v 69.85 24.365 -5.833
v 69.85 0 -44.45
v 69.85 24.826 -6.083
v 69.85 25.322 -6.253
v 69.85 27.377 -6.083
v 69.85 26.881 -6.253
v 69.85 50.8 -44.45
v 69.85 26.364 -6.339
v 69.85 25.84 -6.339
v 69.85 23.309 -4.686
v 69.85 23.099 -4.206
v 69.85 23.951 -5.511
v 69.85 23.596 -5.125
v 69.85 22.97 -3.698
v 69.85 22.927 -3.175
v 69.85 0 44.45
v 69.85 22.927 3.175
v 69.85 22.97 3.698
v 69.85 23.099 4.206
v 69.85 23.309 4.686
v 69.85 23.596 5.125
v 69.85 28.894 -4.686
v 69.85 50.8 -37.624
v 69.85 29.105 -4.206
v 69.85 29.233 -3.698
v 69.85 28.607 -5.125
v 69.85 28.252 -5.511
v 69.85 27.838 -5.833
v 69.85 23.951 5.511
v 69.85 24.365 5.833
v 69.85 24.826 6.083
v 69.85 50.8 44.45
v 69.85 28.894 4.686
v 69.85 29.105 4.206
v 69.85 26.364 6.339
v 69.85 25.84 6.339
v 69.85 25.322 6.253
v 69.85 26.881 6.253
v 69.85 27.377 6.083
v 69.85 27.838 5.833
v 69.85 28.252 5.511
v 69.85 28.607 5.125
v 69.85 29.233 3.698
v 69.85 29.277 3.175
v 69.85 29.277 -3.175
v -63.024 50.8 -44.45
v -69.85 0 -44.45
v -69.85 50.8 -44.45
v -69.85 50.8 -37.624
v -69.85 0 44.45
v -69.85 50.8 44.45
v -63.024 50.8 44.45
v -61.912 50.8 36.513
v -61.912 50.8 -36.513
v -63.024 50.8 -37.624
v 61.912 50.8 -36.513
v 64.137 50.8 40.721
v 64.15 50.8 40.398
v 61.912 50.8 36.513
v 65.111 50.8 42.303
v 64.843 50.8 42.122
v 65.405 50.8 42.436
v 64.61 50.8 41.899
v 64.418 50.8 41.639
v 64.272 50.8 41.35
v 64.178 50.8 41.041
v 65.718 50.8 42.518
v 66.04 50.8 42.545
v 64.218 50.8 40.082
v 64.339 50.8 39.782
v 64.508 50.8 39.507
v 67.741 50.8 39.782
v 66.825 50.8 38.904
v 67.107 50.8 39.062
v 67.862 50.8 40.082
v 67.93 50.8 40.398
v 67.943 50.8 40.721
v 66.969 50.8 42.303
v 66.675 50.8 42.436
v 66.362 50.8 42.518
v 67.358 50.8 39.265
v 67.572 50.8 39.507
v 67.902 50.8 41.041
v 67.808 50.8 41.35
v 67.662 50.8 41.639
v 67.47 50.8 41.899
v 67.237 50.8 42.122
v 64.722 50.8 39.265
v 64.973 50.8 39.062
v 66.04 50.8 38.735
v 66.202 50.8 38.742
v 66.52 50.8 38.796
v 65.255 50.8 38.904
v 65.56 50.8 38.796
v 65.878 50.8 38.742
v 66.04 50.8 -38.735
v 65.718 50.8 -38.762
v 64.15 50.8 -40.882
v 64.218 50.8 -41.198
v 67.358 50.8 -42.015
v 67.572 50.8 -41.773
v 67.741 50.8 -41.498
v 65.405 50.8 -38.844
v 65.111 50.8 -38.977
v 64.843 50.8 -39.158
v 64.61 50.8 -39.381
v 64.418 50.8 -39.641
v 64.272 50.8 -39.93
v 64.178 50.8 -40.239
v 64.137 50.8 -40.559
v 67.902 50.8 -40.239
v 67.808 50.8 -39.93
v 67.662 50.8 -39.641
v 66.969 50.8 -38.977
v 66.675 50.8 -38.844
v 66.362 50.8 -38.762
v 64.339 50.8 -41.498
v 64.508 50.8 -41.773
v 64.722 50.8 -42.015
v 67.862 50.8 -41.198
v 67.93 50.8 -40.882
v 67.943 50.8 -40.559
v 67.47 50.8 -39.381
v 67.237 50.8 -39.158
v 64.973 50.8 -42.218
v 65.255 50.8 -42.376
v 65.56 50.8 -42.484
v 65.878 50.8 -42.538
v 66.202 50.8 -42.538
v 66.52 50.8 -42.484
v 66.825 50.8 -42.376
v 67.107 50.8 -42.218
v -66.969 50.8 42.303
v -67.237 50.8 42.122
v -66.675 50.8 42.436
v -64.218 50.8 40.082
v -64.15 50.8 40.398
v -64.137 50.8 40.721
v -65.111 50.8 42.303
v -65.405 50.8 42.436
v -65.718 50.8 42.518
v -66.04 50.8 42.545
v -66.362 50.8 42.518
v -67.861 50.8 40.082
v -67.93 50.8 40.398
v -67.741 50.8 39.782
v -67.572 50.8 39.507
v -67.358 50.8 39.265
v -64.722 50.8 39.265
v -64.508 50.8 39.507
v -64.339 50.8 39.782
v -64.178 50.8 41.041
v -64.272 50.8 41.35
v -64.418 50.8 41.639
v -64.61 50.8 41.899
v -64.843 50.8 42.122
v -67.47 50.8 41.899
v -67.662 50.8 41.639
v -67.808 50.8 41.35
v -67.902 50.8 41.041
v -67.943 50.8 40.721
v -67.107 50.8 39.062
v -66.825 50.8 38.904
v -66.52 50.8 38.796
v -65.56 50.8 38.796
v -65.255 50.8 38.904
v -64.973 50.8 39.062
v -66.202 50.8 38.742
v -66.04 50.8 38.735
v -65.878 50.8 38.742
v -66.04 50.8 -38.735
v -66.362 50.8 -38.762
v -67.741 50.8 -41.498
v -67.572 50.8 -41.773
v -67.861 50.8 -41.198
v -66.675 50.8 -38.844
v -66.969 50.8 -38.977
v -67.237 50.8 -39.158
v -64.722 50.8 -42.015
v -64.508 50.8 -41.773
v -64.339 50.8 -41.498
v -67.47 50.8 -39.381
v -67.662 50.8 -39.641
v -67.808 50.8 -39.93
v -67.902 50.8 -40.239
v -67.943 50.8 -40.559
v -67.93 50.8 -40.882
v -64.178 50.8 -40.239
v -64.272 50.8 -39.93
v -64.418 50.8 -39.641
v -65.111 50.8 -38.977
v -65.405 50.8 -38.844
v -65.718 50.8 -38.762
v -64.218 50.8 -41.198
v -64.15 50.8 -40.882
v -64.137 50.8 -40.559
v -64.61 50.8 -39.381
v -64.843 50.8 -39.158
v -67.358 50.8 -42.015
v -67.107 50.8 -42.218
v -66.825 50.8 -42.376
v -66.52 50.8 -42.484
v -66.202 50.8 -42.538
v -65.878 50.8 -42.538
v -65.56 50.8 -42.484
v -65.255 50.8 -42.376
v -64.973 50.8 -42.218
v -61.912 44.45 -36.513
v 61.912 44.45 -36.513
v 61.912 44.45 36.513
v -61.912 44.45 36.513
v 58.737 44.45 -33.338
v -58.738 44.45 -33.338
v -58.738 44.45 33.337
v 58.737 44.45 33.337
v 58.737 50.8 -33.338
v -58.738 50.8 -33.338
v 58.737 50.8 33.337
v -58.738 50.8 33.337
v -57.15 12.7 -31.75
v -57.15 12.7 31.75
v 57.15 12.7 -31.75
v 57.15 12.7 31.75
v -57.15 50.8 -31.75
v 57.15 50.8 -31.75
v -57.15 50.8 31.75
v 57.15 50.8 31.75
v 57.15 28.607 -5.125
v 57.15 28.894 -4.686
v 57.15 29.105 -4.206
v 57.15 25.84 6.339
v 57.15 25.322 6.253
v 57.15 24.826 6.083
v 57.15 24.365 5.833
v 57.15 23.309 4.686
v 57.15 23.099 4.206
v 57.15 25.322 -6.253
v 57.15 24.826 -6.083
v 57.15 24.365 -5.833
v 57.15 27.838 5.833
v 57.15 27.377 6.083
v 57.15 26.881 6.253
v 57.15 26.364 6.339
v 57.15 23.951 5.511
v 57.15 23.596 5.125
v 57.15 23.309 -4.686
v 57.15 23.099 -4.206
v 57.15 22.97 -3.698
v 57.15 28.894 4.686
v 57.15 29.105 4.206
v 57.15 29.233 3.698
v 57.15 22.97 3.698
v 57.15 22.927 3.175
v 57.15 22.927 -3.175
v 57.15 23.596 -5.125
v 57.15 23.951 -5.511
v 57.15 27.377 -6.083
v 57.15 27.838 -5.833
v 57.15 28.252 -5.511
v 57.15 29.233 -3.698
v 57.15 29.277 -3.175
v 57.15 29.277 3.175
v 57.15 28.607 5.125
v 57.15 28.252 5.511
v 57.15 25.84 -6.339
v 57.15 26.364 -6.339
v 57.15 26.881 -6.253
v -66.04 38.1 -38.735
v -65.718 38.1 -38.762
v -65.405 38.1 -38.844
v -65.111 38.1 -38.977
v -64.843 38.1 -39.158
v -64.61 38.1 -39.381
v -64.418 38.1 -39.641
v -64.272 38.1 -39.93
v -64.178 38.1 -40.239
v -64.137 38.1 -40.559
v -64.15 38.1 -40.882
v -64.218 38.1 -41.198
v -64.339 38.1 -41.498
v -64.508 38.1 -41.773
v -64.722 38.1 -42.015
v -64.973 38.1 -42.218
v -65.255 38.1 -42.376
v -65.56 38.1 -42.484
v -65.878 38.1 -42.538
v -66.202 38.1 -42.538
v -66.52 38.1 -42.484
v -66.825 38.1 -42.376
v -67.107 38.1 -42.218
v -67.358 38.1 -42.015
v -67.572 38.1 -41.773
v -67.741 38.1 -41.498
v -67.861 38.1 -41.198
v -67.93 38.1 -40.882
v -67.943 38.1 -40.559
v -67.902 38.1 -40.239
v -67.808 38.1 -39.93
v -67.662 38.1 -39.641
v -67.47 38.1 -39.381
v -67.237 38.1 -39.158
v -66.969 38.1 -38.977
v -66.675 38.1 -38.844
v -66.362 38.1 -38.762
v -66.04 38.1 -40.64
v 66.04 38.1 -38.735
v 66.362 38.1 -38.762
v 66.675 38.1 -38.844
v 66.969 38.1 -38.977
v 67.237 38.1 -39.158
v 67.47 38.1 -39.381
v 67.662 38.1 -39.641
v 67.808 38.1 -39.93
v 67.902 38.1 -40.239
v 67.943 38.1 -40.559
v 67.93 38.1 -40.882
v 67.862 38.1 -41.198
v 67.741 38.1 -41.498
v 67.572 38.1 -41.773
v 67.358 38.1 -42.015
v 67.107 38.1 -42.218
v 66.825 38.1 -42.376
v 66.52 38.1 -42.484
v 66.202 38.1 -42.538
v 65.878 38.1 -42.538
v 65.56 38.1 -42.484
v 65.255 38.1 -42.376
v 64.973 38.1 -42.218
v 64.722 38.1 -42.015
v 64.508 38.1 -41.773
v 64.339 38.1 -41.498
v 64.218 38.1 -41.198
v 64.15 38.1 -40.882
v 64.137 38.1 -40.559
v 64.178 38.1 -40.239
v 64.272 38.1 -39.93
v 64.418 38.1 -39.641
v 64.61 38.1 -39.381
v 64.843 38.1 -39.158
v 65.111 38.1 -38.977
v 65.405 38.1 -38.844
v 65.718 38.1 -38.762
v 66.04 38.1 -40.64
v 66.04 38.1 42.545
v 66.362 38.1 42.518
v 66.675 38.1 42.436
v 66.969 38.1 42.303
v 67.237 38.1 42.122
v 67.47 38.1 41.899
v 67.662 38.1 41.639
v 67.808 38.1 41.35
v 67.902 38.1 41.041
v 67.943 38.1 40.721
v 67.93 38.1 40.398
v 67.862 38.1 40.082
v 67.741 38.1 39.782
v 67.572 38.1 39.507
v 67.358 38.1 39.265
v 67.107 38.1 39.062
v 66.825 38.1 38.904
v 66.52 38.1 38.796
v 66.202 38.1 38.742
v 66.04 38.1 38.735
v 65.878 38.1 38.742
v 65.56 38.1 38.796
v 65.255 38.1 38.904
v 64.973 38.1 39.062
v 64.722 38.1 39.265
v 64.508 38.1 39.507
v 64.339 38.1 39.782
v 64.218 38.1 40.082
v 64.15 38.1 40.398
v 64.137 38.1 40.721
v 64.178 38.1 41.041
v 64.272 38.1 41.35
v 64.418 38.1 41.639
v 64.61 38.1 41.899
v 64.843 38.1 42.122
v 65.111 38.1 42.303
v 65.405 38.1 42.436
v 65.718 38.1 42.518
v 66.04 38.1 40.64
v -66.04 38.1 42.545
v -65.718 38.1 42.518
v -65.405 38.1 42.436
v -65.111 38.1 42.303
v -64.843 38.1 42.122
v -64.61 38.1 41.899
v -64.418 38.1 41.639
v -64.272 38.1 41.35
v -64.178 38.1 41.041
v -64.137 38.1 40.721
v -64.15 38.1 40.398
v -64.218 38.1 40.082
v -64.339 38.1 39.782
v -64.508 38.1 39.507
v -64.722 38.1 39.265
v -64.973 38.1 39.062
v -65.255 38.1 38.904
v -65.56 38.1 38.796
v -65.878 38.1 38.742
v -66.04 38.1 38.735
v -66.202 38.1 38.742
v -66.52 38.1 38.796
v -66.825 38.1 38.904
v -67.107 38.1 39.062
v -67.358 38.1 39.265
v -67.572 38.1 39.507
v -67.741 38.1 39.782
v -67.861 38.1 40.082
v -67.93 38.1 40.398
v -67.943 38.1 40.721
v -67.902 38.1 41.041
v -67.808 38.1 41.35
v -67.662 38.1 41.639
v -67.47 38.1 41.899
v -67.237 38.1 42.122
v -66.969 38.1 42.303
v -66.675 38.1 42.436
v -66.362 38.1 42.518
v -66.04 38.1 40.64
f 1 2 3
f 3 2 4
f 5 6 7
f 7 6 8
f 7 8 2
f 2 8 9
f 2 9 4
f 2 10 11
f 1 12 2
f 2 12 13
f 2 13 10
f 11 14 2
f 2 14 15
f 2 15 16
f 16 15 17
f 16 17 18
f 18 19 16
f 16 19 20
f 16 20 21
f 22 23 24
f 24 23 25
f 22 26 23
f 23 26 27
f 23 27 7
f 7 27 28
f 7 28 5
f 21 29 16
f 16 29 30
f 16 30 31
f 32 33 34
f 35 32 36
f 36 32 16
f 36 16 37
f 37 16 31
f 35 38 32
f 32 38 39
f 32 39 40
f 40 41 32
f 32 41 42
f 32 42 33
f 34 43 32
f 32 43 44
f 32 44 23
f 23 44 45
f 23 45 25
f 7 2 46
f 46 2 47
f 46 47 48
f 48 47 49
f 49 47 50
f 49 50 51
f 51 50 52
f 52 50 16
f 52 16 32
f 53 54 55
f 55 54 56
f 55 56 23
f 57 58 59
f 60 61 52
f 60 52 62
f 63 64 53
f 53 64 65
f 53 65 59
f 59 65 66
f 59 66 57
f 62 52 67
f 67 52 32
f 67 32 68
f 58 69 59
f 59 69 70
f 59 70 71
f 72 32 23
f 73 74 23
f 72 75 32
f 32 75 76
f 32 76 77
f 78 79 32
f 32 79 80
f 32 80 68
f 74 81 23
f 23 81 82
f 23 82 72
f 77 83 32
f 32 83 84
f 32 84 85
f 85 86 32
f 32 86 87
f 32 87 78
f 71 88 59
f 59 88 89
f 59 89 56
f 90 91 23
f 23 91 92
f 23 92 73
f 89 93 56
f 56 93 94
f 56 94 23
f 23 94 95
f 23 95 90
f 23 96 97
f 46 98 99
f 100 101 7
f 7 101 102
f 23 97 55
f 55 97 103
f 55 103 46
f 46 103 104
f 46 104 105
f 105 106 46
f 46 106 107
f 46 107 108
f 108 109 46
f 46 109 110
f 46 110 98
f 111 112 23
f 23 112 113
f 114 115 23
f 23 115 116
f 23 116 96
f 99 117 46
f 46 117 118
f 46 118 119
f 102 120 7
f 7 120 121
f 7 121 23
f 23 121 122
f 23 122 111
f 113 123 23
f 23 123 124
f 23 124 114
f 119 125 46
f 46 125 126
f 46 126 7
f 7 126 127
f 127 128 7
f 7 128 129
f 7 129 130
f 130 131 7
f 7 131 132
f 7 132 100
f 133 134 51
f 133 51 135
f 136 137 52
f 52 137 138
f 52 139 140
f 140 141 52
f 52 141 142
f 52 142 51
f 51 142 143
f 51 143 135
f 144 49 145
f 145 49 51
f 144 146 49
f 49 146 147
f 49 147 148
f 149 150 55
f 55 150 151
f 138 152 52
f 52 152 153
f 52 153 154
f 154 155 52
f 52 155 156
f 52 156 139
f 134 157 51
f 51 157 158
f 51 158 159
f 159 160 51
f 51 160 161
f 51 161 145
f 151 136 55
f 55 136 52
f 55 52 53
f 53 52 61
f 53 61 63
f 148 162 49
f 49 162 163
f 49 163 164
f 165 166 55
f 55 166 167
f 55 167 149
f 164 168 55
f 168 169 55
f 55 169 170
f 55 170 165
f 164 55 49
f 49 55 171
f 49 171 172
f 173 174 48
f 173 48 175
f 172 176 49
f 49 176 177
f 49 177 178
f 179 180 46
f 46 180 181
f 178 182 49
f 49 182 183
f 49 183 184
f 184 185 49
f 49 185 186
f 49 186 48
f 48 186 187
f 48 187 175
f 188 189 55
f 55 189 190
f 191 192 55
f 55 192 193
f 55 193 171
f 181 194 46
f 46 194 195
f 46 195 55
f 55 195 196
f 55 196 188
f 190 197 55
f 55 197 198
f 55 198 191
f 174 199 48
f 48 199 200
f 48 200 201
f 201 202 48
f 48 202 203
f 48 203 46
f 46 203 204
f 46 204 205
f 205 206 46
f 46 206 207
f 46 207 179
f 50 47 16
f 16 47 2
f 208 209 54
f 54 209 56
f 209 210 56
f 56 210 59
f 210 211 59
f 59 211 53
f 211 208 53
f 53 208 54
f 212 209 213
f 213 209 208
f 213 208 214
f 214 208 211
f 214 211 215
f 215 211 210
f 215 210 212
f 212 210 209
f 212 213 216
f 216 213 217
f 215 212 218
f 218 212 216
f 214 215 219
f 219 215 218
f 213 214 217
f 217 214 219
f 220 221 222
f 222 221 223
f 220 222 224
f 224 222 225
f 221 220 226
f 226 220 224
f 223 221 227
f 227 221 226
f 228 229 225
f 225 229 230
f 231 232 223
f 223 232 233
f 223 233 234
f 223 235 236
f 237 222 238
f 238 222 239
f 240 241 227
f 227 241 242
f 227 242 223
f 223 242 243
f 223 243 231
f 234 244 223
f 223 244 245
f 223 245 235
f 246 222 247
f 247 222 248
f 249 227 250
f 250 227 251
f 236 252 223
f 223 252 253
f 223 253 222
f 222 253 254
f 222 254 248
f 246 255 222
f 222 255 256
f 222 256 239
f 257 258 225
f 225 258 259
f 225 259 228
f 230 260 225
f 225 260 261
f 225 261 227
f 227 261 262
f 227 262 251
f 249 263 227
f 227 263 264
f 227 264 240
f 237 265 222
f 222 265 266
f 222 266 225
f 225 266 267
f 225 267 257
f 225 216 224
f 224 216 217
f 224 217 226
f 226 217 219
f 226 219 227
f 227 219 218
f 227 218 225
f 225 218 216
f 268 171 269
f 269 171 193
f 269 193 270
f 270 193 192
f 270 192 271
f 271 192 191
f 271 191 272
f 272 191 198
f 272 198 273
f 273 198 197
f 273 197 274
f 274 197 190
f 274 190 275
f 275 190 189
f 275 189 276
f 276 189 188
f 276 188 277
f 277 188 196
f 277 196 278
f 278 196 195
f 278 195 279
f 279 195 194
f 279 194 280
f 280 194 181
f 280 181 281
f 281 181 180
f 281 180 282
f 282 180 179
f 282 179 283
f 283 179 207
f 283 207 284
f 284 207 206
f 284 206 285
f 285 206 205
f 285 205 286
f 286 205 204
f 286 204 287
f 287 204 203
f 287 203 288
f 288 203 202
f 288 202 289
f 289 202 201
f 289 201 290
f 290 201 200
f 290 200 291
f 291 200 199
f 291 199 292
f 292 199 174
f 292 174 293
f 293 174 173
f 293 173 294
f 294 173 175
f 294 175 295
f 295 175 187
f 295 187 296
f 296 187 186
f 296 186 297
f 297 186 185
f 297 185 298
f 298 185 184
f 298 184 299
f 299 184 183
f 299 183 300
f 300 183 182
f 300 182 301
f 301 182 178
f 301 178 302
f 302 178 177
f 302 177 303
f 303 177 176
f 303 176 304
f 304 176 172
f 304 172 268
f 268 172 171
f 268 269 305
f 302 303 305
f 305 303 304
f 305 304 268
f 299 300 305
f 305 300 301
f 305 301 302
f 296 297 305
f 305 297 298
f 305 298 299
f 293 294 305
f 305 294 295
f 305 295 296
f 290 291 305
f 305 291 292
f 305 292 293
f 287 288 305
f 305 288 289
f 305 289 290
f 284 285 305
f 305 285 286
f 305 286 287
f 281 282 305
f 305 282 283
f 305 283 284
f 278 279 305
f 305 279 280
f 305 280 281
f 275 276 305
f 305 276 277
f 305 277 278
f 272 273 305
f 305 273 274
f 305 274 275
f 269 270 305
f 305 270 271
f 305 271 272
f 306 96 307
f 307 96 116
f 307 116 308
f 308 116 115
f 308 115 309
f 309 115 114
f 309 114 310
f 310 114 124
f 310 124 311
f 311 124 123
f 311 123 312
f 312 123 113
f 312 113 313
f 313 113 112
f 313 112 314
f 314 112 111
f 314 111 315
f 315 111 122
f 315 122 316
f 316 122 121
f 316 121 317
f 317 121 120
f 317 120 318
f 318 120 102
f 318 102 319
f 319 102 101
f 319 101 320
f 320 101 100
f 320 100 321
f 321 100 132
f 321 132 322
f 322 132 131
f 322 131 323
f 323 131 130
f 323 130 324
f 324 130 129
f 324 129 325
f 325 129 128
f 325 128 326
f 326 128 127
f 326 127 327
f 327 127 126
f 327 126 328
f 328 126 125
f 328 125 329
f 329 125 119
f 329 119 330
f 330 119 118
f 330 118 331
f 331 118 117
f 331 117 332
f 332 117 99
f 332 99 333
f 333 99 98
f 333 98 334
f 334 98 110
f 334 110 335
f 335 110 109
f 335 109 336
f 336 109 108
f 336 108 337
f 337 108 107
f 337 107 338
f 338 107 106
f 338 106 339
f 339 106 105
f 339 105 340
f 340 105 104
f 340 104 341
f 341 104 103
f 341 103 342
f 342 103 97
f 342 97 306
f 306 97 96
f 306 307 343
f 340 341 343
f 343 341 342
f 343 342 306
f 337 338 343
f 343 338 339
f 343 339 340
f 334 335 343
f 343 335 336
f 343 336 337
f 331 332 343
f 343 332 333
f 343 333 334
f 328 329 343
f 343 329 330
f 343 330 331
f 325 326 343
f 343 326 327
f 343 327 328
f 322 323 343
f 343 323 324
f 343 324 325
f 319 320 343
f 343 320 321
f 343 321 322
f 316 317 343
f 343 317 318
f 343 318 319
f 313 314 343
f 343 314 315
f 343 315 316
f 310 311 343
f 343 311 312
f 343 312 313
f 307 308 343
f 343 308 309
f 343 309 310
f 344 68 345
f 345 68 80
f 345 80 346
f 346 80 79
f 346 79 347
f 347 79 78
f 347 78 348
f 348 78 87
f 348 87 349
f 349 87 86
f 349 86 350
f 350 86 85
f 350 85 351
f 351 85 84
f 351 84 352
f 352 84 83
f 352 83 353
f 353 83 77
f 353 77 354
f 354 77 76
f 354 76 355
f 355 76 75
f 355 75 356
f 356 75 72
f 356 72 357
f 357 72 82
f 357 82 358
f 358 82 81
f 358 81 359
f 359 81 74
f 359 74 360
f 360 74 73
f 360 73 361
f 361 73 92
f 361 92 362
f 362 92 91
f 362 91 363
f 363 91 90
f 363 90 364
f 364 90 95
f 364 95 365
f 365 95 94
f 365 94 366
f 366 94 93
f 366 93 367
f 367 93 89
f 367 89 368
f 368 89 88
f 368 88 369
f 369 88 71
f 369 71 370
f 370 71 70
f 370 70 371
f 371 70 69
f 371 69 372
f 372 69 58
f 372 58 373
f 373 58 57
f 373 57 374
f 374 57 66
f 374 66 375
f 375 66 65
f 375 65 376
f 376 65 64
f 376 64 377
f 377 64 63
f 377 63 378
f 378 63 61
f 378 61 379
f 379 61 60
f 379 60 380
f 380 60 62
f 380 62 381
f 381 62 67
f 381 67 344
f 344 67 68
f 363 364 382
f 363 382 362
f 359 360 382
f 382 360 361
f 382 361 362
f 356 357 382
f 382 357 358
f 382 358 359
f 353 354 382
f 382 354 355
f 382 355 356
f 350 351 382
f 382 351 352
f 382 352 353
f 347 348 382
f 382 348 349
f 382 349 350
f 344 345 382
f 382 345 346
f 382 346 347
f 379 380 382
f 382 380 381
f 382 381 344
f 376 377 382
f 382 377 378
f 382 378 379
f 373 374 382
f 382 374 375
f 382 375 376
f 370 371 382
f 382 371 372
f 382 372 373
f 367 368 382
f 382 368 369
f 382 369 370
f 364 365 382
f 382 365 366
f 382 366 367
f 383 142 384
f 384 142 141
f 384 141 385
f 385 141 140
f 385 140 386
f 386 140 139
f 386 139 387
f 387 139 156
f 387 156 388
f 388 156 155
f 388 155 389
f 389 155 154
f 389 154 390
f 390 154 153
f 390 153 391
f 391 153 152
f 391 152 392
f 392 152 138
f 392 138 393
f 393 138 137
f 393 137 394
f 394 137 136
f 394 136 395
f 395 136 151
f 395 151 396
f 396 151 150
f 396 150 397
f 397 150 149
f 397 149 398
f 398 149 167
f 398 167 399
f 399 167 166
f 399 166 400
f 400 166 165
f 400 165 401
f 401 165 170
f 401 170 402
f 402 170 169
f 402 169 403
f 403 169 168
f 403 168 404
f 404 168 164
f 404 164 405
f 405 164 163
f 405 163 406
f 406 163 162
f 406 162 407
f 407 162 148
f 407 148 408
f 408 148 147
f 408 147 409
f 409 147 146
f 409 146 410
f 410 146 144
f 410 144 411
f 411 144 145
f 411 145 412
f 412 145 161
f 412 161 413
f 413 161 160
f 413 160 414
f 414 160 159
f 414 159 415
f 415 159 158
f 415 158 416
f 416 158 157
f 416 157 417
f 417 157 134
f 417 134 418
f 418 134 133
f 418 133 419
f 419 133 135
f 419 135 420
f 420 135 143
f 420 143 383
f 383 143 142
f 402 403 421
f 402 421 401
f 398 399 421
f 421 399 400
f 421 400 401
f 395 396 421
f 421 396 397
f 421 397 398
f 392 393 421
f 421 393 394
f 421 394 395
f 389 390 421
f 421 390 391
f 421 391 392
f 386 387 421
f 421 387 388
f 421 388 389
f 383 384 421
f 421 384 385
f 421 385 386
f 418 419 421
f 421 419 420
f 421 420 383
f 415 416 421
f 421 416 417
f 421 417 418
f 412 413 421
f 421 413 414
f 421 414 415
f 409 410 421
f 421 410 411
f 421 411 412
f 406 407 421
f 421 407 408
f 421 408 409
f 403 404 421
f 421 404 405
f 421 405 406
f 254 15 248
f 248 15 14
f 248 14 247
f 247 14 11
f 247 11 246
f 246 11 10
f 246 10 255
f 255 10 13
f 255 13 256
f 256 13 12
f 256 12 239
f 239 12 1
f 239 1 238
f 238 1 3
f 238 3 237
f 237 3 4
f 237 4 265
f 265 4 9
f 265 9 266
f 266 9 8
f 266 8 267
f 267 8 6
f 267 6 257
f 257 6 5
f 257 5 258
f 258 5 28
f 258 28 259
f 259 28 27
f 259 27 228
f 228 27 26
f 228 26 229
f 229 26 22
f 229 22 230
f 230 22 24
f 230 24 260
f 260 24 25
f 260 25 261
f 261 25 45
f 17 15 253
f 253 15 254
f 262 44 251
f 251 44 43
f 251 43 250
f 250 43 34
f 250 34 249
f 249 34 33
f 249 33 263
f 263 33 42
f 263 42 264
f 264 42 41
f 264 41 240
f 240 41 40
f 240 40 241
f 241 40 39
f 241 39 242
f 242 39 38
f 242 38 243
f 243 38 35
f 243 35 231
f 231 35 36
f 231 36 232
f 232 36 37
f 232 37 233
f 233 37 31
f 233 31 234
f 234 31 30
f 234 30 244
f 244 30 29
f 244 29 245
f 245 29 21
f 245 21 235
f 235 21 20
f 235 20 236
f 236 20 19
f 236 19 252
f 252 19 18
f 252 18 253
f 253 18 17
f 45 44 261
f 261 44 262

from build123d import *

# Parameters (mm, degrees)
SKETCH1_W               = 139.7
SKETCH1_H               = 88.9
BOSS_EXTRUDE1_DEPTH     = 50.8
SKETCH3_W               = 114.3
SKETCH3_H               = 63.5
CUT_EXTRUDE1_DEPTH      = 38.1
SKETCH6_W               = 123.825
SKETCH6_H               = 73.025
SKETCH6_W_2             = 117.475
SKETCH6_H_2             = 66.675
CUT_EXTRUDE2_DEPTH      = 6.35
SKETCH7_R               = 1.905
CUT_EXTRUDE3_DEPTH      = 12.7
MIRROR2_COPY_1_SKETCH_R = 1.905
MIRROR2_COPY_1_DEPTH    = 12.7
CUT_EXTRUDE5_DEPTH      = 12.7


with BuildPart() as part:
    # Sketch1 → Boss-Extrude1 (new body)
    with BuildSketch(Plane(origin=(0, 0, 0), x_dir=(1, 0, 0), z_dir=(0, 1, 0))):
        Rectangle(SKETCH1_W, SKETCH1_H)
    extrude(amount=BOSS_EXTRUDE1_DEPTH)

    # Sketch3 → Cut-Extrude1 (cut)
    with BuildSketch(Plane(origin=(0, 50.8, 0), x_dir=(1, 0, 0), z_dir=(0, 1, 0))):
        Rectangle(SKETCH3_W, SKETCH3_H)
    extrude(amount=-CUT_EXTRUDE1_DEPTH, mode=Mode.SUBTRACT)

    # Sketch6 → Cut-Extrude2 (cut)
    with BuildSketch(Plane(origin=(0, 50.8, 0), x_dir=(1, 0, 0), z_dir=(0, 1, 0))):
        Rectangle(SKETCH6_W, SKETCH6_H)
        Rectangle(SKETCH6_W_2, SKETCH6_H_2, mode=Mode.SUBTRACT)
    extrude(amount=-CUT_EXTRUDE2_DEPTH, mode=Mode.SUBTRACT)

    # Sketch7 → Cut-Extrude3 (cut)
    with BuildSketch(Plane(origin=(0, 50.8, 0), x_dir=(1, 0, 0), z_dir=(0, 1, 0))):
        with Locations(Location((-66.04, 40.64, 0), (0, 0, 270))):
            Circle(SKETCH7_R)
    cut_extrude3 = extrude(amount=-CUT_EXTRUDE3_DEPTH, mode=Mode.SUBTRACT)

    # Mirror1: Cut-Extrude3 across plane
    add(cut_extrude3.mirror(Plane(origin=(0, 0, 0), x_dir=(0, 0, 1), z_dir=(1, 0, 0))), mode=Mode.SUBTRACT)

    # Mirror2: Cut-Extrude3 across plane
    add(cut_extrude3.mirror(Plane.XY), mode=Mode.SUBTRACT)

    # Mirror2 copy 1 sketch → Mirror2 copy 1 (cut)
    with BuildSketch(Plane(origin=(0, 50.8, 0), x_dir=(-1, 0, 0), z_dir=(0, 1, 0))):
        with Locations(Location((-66.04, 40.64, 0), (0, 0, 270))):
            Circle(MIRROR2_COPY_1_SKETCH_R)
    extrude(amount=-MIRROR2_COPY_1_DEPTH, mode=Mode.SUBTRACT)

    # Sketch9 → Cut-Extrude5 (cut)
    with BuildSketch(Plane(origin=(69.85, 0, 0), x_dir=(0, 0, -1), z_dir=(1, 0, 0))):
        with BuildLine():
            Line((-3.175, 22.926701198), (3.175, 22.926701198))
            ThreePointArc((3.175, 22.926701198), (6.35, 26.101701198), (3.175, 29.276701198))
            Line((3.175, 29.276701198), (-3.175, 29.276701198))
            ThreePointArc((-3.175, 29.276701198), (-6.35, 26.101701198), (-3.175, 22.926701198))
        make_face()
    extrude(amount=-CUT_EXTRUDE5_DEPTH, mode=Mode.SUBTRACT)


solid = part.part
